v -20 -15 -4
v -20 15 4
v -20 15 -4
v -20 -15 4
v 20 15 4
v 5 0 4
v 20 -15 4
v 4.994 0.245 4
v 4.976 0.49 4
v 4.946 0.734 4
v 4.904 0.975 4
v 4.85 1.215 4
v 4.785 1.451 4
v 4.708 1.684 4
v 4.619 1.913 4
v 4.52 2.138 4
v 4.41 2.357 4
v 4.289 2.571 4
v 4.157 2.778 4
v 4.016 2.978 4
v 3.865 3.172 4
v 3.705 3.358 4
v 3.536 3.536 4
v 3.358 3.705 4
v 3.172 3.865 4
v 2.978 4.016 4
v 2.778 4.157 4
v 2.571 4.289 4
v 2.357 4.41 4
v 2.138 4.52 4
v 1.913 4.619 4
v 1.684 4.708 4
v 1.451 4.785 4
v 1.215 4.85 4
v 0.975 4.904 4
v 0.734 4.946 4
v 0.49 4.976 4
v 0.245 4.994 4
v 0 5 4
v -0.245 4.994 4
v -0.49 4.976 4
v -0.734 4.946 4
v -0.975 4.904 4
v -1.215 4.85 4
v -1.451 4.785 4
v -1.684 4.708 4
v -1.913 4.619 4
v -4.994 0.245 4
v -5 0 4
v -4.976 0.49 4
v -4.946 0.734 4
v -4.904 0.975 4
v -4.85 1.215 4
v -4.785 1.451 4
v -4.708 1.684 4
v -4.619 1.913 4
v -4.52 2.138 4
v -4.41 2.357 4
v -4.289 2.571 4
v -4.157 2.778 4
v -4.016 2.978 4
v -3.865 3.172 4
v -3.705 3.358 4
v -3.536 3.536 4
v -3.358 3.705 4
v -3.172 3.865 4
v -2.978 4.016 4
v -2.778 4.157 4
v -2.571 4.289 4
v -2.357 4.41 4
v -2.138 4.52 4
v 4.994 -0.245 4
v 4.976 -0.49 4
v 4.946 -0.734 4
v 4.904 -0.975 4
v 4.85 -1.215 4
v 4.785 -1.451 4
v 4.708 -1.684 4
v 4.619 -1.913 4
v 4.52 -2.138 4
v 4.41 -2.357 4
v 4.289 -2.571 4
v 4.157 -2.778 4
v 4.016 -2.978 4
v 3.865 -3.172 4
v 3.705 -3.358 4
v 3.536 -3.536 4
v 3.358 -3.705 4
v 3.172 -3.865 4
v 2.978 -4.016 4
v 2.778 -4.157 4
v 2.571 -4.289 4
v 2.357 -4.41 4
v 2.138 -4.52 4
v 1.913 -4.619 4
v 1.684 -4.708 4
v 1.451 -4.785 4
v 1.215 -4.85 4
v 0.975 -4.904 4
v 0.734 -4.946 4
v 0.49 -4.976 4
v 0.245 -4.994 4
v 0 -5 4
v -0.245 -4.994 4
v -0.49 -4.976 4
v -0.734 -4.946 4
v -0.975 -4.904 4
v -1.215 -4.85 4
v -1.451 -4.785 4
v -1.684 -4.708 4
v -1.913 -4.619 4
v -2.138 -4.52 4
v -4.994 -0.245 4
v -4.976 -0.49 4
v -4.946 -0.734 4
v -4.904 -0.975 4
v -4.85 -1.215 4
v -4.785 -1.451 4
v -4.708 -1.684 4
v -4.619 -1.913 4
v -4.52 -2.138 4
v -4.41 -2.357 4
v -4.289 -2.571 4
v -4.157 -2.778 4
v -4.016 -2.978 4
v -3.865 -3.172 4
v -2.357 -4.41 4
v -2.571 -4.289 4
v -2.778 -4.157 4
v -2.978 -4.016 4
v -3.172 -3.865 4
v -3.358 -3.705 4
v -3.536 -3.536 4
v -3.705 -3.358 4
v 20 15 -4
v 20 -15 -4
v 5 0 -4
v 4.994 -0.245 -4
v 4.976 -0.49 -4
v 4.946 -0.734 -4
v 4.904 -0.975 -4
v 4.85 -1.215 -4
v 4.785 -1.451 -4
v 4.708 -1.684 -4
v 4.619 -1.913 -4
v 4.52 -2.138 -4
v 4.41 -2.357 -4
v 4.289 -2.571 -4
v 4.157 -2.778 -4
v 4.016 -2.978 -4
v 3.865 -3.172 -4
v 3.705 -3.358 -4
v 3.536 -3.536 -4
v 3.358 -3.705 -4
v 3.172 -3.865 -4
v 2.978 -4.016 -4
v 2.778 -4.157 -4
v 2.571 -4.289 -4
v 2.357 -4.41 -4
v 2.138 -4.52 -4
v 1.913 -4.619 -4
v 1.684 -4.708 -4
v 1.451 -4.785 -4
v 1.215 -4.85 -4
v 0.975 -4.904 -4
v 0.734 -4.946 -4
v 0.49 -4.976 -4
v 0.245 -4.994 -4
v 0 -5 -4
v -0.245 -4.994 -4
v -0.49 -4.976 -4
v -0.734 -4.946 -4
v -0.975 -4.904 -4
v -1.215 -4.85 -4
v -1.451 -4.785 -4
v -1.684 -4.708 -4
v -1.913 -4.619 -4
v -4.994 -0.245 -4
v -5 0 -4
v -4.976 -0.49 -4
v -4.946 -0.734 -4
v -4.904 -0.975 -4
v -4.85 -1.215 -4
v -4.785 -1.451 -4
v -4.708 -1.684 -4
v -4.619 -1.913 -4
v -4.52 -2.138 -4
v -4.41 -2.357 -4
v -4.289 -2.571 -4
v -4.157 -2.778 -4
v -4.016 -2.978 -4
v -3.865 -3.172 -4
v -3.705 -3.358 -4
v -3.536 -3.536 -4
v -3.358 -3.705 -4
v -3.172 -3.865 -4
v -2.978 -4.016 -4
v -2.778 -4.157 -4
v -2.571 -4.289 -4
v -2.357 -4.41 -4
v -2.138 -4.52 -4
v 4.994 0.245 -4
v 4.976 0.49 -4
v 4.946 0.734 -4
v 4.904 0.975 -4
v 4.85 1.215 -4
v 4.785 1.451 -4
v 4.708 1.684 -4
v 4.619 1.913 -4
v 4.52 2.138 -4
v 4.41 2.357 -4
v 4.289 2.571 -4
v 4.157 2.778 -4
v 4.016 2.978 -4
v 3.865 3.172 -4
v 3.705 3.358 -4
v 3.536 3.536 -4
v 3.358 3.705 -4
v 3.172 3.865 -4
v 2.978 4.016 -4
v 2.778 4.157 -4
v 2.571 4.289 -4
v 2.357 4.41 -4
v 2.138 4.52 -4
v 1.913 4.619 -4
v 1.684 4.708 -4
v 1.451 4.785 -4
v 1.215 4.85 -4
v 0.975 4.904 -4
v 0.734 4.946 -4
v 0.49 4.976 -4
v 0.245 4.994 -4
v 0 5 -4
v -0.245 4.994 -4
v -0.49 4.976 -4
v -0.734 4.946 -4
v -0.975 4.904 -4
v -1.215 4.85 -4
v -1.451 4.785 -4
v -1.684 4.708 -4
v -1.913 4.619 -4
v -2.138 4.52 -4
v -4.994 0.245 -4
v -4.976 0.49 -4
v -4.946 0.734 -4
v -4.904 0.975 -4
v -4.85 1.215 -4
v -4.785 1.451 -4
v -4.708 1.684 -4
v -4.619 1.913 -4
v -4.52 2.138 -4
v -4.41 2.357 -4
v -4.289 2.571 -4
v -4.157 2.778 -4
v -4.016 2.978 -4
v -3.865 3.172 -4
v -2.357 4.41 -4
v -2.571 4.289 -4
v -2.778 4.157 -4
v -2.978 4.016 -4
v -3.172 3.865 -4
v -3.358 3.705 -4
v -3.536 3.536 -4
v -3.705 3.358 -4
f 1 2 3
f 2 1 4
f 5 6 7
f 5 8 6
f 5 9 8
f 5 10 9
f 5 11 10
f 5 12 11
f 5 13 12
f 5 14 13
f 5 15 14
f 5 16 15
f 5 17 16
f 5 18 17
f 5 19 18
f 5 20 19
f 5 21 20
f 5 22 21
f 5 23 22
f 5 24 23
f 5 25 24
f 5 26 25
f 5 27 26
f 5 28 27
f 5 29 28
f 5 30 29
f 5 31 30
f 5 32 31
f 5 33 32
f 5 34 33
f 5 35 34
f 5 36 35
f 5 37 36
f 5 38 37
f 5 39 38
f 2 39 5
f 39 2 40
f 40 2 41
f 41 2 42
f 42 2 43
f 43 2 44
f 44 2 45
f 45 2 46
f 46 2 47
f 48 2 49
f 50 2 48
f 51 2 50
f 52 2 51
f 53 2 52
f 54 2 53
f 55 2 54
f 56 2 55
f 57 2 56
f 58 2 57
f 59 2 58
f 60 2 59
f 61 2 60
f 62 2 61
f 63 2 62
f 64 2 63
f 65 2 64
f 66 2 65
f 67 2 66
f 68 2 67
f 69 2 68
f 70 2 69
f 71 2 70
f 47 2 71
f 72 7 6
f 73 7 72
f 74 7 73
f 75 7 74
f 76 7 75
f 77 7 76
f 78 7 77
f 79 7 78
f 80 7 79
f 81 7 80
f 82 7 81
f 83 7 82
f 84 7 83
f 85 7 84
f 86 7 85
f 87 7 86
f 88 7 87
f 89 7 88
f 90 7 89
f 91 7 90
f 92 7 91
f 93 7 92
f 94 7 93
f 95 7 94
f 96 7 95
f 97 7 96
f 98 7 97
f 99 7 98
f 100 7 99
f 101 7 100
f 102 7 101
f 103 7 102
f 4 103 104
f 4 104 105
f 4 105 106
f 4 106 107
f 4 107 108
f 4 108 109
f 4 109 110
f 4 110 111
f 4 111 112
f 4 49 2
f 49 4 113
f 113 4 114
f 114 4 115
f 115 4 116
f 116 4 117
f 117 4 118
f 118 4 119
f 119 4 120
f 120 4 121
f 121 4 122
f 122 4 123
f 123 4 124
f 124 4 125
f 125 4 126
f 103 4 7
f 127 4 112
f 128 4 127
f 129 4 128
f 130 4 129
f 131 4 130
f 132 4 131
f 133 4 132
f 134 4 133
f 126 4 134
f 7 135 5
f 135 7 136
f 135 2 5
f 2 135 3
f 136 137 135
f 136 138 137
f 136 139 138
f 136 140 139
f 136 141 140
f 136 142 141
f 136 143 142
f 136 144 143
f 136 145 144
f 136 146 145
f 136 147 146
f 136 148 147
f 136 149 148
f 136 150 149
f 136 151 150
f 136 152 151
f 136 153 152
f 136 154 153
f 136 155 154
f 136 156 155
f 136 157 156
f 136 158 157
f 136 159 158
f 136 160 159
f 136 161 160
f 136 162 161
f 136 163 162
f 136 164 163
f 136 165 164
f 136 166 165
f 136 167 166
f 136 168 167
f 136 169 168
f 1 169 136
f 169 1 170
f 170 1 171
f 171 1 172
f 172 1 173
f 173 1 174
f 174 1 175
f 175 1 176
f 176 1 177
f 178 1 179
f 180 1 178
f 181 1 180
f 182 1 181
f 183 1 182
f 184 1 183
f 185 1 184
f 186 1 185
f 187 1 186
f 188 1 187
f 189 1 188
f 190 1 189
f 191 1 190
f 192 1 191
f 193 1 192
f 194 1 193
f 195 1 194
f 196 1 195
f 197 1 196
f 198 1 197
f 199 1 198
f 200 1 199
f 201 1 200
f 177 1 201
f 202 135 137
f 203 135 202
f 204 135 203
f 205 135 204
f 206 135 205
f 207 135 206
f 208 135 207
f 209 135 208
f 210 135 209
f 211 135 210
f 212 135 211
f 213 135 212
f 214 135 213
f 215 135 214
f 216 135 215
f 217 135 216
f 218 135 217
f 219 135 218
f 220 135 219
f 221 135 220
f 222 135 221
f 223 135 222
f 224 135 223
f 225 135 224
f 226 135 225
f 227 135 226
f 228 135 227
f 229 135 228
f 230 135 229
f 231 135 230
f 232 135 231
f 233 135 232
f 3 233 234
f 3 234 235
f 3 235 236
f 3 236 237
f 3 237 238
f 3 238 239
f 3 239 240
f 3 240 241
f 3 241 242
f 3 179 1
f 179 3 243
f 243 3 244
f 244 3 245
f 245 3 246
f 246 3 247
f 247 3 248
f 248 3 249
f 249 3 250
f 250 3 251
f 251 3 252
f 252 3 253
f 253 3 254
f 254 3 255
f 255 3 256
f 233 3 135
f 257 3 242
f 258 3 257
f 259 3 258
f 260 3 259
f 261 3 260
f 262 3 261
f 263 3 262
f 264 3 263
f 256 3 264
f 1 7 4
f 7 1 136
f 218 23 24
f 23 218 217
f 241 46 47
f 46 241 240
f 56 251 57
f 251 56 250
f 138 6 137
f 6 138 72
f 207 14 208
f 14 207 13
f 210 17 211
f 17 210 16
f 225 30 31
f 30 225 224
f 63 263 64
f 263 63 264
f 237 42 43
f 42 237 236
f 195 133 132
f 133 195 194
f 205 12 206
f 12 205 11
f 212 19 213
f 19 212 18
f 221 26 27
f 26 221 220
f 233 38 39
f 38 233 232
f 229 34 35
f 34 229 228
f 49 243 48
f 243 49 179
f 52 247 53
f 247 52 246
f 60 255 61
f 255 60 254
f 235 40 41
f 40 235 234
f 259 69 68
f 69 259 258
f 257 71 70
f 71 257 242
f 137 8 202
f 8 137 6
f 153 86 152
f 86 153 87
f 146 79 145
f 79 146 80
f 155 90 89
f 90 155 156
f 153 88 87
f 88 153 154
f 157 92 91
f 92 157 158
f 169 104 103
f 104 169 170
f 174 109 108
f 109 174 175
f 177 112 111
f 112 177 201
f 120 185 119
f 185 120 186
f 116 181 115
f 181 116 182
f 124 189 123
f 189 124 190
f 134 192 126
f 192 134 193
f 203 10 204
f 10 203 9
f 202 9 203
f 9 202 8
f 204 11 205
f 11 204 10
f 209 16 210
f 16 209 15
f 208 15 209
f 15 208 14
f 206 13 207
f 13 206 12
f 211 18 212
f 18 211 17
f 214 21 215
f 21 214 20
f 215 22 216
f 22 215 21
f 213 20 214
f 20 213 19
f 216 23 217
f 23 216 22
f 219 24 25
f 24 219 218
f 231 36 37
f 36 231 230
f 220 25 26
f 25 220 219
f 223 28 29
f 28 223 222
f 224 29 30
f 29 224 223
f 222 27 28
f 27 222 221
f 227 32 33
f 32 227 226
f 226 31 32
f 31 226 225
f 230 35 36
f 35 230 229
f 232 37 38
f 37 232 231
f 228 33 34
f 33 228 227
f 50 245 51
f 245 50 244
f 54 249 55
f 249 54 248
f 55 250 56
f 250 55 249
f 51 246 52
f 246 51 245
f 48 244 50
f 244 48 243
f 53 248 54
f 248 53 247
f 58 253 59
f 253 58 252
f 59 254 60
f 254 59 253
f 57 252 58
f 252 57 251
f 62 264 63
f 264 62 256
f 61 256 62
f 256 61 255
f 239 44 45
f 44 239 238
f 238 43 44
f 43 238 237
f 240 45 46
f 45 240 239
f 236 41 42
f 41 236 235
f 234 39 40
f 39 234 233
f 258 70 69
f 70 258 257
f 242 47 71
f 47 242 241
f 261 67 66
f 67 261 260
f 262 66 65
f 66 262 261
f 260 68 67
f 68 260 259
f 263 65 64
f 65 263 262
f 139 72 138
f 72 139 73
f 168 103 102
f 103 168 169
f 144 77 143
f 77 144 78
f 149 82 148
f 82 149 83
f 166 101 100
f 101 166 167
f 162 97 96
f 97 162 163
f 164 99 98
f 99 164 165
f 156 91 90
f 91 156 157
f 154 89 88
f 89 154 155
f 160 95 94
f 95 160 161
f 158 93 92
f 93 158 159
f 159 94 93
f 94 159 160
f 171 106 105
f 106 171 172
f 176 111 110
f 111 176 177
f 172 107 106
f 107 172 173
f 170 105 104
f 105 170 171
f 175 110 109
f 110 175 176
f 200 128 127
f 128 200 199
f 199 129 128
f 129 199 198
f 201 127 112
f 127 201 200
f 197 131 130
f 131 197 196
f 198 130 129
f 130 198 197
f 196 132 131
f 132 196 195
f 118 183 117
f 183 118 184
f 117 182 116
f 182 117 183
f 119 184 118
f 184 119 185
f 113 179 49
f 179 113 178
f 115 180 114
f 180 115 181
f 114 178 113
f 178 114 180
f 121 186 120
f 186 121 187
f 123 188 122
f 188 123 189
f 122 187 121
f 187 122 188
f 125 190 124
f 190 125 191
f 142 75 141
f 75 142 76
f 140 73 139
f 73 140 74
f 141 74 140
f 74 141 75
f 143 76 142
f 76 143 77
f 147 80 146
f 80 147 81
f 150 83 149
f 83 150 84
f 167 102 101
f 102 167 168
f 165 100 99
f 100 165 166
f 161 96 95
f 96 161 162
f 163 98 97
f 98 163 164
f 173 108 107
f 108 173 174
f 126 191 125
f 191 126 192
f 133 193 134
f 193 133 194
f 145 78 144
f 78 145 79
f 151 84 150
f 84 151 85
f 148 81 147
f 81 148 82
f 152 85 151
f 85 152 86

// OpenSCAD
// Codex correction; all lengths are mm. Synthetic test requirement.
difference(){ cube([40,30,8],center=true); cylinder(d=10,h=10,center=true,$fn=128); }
